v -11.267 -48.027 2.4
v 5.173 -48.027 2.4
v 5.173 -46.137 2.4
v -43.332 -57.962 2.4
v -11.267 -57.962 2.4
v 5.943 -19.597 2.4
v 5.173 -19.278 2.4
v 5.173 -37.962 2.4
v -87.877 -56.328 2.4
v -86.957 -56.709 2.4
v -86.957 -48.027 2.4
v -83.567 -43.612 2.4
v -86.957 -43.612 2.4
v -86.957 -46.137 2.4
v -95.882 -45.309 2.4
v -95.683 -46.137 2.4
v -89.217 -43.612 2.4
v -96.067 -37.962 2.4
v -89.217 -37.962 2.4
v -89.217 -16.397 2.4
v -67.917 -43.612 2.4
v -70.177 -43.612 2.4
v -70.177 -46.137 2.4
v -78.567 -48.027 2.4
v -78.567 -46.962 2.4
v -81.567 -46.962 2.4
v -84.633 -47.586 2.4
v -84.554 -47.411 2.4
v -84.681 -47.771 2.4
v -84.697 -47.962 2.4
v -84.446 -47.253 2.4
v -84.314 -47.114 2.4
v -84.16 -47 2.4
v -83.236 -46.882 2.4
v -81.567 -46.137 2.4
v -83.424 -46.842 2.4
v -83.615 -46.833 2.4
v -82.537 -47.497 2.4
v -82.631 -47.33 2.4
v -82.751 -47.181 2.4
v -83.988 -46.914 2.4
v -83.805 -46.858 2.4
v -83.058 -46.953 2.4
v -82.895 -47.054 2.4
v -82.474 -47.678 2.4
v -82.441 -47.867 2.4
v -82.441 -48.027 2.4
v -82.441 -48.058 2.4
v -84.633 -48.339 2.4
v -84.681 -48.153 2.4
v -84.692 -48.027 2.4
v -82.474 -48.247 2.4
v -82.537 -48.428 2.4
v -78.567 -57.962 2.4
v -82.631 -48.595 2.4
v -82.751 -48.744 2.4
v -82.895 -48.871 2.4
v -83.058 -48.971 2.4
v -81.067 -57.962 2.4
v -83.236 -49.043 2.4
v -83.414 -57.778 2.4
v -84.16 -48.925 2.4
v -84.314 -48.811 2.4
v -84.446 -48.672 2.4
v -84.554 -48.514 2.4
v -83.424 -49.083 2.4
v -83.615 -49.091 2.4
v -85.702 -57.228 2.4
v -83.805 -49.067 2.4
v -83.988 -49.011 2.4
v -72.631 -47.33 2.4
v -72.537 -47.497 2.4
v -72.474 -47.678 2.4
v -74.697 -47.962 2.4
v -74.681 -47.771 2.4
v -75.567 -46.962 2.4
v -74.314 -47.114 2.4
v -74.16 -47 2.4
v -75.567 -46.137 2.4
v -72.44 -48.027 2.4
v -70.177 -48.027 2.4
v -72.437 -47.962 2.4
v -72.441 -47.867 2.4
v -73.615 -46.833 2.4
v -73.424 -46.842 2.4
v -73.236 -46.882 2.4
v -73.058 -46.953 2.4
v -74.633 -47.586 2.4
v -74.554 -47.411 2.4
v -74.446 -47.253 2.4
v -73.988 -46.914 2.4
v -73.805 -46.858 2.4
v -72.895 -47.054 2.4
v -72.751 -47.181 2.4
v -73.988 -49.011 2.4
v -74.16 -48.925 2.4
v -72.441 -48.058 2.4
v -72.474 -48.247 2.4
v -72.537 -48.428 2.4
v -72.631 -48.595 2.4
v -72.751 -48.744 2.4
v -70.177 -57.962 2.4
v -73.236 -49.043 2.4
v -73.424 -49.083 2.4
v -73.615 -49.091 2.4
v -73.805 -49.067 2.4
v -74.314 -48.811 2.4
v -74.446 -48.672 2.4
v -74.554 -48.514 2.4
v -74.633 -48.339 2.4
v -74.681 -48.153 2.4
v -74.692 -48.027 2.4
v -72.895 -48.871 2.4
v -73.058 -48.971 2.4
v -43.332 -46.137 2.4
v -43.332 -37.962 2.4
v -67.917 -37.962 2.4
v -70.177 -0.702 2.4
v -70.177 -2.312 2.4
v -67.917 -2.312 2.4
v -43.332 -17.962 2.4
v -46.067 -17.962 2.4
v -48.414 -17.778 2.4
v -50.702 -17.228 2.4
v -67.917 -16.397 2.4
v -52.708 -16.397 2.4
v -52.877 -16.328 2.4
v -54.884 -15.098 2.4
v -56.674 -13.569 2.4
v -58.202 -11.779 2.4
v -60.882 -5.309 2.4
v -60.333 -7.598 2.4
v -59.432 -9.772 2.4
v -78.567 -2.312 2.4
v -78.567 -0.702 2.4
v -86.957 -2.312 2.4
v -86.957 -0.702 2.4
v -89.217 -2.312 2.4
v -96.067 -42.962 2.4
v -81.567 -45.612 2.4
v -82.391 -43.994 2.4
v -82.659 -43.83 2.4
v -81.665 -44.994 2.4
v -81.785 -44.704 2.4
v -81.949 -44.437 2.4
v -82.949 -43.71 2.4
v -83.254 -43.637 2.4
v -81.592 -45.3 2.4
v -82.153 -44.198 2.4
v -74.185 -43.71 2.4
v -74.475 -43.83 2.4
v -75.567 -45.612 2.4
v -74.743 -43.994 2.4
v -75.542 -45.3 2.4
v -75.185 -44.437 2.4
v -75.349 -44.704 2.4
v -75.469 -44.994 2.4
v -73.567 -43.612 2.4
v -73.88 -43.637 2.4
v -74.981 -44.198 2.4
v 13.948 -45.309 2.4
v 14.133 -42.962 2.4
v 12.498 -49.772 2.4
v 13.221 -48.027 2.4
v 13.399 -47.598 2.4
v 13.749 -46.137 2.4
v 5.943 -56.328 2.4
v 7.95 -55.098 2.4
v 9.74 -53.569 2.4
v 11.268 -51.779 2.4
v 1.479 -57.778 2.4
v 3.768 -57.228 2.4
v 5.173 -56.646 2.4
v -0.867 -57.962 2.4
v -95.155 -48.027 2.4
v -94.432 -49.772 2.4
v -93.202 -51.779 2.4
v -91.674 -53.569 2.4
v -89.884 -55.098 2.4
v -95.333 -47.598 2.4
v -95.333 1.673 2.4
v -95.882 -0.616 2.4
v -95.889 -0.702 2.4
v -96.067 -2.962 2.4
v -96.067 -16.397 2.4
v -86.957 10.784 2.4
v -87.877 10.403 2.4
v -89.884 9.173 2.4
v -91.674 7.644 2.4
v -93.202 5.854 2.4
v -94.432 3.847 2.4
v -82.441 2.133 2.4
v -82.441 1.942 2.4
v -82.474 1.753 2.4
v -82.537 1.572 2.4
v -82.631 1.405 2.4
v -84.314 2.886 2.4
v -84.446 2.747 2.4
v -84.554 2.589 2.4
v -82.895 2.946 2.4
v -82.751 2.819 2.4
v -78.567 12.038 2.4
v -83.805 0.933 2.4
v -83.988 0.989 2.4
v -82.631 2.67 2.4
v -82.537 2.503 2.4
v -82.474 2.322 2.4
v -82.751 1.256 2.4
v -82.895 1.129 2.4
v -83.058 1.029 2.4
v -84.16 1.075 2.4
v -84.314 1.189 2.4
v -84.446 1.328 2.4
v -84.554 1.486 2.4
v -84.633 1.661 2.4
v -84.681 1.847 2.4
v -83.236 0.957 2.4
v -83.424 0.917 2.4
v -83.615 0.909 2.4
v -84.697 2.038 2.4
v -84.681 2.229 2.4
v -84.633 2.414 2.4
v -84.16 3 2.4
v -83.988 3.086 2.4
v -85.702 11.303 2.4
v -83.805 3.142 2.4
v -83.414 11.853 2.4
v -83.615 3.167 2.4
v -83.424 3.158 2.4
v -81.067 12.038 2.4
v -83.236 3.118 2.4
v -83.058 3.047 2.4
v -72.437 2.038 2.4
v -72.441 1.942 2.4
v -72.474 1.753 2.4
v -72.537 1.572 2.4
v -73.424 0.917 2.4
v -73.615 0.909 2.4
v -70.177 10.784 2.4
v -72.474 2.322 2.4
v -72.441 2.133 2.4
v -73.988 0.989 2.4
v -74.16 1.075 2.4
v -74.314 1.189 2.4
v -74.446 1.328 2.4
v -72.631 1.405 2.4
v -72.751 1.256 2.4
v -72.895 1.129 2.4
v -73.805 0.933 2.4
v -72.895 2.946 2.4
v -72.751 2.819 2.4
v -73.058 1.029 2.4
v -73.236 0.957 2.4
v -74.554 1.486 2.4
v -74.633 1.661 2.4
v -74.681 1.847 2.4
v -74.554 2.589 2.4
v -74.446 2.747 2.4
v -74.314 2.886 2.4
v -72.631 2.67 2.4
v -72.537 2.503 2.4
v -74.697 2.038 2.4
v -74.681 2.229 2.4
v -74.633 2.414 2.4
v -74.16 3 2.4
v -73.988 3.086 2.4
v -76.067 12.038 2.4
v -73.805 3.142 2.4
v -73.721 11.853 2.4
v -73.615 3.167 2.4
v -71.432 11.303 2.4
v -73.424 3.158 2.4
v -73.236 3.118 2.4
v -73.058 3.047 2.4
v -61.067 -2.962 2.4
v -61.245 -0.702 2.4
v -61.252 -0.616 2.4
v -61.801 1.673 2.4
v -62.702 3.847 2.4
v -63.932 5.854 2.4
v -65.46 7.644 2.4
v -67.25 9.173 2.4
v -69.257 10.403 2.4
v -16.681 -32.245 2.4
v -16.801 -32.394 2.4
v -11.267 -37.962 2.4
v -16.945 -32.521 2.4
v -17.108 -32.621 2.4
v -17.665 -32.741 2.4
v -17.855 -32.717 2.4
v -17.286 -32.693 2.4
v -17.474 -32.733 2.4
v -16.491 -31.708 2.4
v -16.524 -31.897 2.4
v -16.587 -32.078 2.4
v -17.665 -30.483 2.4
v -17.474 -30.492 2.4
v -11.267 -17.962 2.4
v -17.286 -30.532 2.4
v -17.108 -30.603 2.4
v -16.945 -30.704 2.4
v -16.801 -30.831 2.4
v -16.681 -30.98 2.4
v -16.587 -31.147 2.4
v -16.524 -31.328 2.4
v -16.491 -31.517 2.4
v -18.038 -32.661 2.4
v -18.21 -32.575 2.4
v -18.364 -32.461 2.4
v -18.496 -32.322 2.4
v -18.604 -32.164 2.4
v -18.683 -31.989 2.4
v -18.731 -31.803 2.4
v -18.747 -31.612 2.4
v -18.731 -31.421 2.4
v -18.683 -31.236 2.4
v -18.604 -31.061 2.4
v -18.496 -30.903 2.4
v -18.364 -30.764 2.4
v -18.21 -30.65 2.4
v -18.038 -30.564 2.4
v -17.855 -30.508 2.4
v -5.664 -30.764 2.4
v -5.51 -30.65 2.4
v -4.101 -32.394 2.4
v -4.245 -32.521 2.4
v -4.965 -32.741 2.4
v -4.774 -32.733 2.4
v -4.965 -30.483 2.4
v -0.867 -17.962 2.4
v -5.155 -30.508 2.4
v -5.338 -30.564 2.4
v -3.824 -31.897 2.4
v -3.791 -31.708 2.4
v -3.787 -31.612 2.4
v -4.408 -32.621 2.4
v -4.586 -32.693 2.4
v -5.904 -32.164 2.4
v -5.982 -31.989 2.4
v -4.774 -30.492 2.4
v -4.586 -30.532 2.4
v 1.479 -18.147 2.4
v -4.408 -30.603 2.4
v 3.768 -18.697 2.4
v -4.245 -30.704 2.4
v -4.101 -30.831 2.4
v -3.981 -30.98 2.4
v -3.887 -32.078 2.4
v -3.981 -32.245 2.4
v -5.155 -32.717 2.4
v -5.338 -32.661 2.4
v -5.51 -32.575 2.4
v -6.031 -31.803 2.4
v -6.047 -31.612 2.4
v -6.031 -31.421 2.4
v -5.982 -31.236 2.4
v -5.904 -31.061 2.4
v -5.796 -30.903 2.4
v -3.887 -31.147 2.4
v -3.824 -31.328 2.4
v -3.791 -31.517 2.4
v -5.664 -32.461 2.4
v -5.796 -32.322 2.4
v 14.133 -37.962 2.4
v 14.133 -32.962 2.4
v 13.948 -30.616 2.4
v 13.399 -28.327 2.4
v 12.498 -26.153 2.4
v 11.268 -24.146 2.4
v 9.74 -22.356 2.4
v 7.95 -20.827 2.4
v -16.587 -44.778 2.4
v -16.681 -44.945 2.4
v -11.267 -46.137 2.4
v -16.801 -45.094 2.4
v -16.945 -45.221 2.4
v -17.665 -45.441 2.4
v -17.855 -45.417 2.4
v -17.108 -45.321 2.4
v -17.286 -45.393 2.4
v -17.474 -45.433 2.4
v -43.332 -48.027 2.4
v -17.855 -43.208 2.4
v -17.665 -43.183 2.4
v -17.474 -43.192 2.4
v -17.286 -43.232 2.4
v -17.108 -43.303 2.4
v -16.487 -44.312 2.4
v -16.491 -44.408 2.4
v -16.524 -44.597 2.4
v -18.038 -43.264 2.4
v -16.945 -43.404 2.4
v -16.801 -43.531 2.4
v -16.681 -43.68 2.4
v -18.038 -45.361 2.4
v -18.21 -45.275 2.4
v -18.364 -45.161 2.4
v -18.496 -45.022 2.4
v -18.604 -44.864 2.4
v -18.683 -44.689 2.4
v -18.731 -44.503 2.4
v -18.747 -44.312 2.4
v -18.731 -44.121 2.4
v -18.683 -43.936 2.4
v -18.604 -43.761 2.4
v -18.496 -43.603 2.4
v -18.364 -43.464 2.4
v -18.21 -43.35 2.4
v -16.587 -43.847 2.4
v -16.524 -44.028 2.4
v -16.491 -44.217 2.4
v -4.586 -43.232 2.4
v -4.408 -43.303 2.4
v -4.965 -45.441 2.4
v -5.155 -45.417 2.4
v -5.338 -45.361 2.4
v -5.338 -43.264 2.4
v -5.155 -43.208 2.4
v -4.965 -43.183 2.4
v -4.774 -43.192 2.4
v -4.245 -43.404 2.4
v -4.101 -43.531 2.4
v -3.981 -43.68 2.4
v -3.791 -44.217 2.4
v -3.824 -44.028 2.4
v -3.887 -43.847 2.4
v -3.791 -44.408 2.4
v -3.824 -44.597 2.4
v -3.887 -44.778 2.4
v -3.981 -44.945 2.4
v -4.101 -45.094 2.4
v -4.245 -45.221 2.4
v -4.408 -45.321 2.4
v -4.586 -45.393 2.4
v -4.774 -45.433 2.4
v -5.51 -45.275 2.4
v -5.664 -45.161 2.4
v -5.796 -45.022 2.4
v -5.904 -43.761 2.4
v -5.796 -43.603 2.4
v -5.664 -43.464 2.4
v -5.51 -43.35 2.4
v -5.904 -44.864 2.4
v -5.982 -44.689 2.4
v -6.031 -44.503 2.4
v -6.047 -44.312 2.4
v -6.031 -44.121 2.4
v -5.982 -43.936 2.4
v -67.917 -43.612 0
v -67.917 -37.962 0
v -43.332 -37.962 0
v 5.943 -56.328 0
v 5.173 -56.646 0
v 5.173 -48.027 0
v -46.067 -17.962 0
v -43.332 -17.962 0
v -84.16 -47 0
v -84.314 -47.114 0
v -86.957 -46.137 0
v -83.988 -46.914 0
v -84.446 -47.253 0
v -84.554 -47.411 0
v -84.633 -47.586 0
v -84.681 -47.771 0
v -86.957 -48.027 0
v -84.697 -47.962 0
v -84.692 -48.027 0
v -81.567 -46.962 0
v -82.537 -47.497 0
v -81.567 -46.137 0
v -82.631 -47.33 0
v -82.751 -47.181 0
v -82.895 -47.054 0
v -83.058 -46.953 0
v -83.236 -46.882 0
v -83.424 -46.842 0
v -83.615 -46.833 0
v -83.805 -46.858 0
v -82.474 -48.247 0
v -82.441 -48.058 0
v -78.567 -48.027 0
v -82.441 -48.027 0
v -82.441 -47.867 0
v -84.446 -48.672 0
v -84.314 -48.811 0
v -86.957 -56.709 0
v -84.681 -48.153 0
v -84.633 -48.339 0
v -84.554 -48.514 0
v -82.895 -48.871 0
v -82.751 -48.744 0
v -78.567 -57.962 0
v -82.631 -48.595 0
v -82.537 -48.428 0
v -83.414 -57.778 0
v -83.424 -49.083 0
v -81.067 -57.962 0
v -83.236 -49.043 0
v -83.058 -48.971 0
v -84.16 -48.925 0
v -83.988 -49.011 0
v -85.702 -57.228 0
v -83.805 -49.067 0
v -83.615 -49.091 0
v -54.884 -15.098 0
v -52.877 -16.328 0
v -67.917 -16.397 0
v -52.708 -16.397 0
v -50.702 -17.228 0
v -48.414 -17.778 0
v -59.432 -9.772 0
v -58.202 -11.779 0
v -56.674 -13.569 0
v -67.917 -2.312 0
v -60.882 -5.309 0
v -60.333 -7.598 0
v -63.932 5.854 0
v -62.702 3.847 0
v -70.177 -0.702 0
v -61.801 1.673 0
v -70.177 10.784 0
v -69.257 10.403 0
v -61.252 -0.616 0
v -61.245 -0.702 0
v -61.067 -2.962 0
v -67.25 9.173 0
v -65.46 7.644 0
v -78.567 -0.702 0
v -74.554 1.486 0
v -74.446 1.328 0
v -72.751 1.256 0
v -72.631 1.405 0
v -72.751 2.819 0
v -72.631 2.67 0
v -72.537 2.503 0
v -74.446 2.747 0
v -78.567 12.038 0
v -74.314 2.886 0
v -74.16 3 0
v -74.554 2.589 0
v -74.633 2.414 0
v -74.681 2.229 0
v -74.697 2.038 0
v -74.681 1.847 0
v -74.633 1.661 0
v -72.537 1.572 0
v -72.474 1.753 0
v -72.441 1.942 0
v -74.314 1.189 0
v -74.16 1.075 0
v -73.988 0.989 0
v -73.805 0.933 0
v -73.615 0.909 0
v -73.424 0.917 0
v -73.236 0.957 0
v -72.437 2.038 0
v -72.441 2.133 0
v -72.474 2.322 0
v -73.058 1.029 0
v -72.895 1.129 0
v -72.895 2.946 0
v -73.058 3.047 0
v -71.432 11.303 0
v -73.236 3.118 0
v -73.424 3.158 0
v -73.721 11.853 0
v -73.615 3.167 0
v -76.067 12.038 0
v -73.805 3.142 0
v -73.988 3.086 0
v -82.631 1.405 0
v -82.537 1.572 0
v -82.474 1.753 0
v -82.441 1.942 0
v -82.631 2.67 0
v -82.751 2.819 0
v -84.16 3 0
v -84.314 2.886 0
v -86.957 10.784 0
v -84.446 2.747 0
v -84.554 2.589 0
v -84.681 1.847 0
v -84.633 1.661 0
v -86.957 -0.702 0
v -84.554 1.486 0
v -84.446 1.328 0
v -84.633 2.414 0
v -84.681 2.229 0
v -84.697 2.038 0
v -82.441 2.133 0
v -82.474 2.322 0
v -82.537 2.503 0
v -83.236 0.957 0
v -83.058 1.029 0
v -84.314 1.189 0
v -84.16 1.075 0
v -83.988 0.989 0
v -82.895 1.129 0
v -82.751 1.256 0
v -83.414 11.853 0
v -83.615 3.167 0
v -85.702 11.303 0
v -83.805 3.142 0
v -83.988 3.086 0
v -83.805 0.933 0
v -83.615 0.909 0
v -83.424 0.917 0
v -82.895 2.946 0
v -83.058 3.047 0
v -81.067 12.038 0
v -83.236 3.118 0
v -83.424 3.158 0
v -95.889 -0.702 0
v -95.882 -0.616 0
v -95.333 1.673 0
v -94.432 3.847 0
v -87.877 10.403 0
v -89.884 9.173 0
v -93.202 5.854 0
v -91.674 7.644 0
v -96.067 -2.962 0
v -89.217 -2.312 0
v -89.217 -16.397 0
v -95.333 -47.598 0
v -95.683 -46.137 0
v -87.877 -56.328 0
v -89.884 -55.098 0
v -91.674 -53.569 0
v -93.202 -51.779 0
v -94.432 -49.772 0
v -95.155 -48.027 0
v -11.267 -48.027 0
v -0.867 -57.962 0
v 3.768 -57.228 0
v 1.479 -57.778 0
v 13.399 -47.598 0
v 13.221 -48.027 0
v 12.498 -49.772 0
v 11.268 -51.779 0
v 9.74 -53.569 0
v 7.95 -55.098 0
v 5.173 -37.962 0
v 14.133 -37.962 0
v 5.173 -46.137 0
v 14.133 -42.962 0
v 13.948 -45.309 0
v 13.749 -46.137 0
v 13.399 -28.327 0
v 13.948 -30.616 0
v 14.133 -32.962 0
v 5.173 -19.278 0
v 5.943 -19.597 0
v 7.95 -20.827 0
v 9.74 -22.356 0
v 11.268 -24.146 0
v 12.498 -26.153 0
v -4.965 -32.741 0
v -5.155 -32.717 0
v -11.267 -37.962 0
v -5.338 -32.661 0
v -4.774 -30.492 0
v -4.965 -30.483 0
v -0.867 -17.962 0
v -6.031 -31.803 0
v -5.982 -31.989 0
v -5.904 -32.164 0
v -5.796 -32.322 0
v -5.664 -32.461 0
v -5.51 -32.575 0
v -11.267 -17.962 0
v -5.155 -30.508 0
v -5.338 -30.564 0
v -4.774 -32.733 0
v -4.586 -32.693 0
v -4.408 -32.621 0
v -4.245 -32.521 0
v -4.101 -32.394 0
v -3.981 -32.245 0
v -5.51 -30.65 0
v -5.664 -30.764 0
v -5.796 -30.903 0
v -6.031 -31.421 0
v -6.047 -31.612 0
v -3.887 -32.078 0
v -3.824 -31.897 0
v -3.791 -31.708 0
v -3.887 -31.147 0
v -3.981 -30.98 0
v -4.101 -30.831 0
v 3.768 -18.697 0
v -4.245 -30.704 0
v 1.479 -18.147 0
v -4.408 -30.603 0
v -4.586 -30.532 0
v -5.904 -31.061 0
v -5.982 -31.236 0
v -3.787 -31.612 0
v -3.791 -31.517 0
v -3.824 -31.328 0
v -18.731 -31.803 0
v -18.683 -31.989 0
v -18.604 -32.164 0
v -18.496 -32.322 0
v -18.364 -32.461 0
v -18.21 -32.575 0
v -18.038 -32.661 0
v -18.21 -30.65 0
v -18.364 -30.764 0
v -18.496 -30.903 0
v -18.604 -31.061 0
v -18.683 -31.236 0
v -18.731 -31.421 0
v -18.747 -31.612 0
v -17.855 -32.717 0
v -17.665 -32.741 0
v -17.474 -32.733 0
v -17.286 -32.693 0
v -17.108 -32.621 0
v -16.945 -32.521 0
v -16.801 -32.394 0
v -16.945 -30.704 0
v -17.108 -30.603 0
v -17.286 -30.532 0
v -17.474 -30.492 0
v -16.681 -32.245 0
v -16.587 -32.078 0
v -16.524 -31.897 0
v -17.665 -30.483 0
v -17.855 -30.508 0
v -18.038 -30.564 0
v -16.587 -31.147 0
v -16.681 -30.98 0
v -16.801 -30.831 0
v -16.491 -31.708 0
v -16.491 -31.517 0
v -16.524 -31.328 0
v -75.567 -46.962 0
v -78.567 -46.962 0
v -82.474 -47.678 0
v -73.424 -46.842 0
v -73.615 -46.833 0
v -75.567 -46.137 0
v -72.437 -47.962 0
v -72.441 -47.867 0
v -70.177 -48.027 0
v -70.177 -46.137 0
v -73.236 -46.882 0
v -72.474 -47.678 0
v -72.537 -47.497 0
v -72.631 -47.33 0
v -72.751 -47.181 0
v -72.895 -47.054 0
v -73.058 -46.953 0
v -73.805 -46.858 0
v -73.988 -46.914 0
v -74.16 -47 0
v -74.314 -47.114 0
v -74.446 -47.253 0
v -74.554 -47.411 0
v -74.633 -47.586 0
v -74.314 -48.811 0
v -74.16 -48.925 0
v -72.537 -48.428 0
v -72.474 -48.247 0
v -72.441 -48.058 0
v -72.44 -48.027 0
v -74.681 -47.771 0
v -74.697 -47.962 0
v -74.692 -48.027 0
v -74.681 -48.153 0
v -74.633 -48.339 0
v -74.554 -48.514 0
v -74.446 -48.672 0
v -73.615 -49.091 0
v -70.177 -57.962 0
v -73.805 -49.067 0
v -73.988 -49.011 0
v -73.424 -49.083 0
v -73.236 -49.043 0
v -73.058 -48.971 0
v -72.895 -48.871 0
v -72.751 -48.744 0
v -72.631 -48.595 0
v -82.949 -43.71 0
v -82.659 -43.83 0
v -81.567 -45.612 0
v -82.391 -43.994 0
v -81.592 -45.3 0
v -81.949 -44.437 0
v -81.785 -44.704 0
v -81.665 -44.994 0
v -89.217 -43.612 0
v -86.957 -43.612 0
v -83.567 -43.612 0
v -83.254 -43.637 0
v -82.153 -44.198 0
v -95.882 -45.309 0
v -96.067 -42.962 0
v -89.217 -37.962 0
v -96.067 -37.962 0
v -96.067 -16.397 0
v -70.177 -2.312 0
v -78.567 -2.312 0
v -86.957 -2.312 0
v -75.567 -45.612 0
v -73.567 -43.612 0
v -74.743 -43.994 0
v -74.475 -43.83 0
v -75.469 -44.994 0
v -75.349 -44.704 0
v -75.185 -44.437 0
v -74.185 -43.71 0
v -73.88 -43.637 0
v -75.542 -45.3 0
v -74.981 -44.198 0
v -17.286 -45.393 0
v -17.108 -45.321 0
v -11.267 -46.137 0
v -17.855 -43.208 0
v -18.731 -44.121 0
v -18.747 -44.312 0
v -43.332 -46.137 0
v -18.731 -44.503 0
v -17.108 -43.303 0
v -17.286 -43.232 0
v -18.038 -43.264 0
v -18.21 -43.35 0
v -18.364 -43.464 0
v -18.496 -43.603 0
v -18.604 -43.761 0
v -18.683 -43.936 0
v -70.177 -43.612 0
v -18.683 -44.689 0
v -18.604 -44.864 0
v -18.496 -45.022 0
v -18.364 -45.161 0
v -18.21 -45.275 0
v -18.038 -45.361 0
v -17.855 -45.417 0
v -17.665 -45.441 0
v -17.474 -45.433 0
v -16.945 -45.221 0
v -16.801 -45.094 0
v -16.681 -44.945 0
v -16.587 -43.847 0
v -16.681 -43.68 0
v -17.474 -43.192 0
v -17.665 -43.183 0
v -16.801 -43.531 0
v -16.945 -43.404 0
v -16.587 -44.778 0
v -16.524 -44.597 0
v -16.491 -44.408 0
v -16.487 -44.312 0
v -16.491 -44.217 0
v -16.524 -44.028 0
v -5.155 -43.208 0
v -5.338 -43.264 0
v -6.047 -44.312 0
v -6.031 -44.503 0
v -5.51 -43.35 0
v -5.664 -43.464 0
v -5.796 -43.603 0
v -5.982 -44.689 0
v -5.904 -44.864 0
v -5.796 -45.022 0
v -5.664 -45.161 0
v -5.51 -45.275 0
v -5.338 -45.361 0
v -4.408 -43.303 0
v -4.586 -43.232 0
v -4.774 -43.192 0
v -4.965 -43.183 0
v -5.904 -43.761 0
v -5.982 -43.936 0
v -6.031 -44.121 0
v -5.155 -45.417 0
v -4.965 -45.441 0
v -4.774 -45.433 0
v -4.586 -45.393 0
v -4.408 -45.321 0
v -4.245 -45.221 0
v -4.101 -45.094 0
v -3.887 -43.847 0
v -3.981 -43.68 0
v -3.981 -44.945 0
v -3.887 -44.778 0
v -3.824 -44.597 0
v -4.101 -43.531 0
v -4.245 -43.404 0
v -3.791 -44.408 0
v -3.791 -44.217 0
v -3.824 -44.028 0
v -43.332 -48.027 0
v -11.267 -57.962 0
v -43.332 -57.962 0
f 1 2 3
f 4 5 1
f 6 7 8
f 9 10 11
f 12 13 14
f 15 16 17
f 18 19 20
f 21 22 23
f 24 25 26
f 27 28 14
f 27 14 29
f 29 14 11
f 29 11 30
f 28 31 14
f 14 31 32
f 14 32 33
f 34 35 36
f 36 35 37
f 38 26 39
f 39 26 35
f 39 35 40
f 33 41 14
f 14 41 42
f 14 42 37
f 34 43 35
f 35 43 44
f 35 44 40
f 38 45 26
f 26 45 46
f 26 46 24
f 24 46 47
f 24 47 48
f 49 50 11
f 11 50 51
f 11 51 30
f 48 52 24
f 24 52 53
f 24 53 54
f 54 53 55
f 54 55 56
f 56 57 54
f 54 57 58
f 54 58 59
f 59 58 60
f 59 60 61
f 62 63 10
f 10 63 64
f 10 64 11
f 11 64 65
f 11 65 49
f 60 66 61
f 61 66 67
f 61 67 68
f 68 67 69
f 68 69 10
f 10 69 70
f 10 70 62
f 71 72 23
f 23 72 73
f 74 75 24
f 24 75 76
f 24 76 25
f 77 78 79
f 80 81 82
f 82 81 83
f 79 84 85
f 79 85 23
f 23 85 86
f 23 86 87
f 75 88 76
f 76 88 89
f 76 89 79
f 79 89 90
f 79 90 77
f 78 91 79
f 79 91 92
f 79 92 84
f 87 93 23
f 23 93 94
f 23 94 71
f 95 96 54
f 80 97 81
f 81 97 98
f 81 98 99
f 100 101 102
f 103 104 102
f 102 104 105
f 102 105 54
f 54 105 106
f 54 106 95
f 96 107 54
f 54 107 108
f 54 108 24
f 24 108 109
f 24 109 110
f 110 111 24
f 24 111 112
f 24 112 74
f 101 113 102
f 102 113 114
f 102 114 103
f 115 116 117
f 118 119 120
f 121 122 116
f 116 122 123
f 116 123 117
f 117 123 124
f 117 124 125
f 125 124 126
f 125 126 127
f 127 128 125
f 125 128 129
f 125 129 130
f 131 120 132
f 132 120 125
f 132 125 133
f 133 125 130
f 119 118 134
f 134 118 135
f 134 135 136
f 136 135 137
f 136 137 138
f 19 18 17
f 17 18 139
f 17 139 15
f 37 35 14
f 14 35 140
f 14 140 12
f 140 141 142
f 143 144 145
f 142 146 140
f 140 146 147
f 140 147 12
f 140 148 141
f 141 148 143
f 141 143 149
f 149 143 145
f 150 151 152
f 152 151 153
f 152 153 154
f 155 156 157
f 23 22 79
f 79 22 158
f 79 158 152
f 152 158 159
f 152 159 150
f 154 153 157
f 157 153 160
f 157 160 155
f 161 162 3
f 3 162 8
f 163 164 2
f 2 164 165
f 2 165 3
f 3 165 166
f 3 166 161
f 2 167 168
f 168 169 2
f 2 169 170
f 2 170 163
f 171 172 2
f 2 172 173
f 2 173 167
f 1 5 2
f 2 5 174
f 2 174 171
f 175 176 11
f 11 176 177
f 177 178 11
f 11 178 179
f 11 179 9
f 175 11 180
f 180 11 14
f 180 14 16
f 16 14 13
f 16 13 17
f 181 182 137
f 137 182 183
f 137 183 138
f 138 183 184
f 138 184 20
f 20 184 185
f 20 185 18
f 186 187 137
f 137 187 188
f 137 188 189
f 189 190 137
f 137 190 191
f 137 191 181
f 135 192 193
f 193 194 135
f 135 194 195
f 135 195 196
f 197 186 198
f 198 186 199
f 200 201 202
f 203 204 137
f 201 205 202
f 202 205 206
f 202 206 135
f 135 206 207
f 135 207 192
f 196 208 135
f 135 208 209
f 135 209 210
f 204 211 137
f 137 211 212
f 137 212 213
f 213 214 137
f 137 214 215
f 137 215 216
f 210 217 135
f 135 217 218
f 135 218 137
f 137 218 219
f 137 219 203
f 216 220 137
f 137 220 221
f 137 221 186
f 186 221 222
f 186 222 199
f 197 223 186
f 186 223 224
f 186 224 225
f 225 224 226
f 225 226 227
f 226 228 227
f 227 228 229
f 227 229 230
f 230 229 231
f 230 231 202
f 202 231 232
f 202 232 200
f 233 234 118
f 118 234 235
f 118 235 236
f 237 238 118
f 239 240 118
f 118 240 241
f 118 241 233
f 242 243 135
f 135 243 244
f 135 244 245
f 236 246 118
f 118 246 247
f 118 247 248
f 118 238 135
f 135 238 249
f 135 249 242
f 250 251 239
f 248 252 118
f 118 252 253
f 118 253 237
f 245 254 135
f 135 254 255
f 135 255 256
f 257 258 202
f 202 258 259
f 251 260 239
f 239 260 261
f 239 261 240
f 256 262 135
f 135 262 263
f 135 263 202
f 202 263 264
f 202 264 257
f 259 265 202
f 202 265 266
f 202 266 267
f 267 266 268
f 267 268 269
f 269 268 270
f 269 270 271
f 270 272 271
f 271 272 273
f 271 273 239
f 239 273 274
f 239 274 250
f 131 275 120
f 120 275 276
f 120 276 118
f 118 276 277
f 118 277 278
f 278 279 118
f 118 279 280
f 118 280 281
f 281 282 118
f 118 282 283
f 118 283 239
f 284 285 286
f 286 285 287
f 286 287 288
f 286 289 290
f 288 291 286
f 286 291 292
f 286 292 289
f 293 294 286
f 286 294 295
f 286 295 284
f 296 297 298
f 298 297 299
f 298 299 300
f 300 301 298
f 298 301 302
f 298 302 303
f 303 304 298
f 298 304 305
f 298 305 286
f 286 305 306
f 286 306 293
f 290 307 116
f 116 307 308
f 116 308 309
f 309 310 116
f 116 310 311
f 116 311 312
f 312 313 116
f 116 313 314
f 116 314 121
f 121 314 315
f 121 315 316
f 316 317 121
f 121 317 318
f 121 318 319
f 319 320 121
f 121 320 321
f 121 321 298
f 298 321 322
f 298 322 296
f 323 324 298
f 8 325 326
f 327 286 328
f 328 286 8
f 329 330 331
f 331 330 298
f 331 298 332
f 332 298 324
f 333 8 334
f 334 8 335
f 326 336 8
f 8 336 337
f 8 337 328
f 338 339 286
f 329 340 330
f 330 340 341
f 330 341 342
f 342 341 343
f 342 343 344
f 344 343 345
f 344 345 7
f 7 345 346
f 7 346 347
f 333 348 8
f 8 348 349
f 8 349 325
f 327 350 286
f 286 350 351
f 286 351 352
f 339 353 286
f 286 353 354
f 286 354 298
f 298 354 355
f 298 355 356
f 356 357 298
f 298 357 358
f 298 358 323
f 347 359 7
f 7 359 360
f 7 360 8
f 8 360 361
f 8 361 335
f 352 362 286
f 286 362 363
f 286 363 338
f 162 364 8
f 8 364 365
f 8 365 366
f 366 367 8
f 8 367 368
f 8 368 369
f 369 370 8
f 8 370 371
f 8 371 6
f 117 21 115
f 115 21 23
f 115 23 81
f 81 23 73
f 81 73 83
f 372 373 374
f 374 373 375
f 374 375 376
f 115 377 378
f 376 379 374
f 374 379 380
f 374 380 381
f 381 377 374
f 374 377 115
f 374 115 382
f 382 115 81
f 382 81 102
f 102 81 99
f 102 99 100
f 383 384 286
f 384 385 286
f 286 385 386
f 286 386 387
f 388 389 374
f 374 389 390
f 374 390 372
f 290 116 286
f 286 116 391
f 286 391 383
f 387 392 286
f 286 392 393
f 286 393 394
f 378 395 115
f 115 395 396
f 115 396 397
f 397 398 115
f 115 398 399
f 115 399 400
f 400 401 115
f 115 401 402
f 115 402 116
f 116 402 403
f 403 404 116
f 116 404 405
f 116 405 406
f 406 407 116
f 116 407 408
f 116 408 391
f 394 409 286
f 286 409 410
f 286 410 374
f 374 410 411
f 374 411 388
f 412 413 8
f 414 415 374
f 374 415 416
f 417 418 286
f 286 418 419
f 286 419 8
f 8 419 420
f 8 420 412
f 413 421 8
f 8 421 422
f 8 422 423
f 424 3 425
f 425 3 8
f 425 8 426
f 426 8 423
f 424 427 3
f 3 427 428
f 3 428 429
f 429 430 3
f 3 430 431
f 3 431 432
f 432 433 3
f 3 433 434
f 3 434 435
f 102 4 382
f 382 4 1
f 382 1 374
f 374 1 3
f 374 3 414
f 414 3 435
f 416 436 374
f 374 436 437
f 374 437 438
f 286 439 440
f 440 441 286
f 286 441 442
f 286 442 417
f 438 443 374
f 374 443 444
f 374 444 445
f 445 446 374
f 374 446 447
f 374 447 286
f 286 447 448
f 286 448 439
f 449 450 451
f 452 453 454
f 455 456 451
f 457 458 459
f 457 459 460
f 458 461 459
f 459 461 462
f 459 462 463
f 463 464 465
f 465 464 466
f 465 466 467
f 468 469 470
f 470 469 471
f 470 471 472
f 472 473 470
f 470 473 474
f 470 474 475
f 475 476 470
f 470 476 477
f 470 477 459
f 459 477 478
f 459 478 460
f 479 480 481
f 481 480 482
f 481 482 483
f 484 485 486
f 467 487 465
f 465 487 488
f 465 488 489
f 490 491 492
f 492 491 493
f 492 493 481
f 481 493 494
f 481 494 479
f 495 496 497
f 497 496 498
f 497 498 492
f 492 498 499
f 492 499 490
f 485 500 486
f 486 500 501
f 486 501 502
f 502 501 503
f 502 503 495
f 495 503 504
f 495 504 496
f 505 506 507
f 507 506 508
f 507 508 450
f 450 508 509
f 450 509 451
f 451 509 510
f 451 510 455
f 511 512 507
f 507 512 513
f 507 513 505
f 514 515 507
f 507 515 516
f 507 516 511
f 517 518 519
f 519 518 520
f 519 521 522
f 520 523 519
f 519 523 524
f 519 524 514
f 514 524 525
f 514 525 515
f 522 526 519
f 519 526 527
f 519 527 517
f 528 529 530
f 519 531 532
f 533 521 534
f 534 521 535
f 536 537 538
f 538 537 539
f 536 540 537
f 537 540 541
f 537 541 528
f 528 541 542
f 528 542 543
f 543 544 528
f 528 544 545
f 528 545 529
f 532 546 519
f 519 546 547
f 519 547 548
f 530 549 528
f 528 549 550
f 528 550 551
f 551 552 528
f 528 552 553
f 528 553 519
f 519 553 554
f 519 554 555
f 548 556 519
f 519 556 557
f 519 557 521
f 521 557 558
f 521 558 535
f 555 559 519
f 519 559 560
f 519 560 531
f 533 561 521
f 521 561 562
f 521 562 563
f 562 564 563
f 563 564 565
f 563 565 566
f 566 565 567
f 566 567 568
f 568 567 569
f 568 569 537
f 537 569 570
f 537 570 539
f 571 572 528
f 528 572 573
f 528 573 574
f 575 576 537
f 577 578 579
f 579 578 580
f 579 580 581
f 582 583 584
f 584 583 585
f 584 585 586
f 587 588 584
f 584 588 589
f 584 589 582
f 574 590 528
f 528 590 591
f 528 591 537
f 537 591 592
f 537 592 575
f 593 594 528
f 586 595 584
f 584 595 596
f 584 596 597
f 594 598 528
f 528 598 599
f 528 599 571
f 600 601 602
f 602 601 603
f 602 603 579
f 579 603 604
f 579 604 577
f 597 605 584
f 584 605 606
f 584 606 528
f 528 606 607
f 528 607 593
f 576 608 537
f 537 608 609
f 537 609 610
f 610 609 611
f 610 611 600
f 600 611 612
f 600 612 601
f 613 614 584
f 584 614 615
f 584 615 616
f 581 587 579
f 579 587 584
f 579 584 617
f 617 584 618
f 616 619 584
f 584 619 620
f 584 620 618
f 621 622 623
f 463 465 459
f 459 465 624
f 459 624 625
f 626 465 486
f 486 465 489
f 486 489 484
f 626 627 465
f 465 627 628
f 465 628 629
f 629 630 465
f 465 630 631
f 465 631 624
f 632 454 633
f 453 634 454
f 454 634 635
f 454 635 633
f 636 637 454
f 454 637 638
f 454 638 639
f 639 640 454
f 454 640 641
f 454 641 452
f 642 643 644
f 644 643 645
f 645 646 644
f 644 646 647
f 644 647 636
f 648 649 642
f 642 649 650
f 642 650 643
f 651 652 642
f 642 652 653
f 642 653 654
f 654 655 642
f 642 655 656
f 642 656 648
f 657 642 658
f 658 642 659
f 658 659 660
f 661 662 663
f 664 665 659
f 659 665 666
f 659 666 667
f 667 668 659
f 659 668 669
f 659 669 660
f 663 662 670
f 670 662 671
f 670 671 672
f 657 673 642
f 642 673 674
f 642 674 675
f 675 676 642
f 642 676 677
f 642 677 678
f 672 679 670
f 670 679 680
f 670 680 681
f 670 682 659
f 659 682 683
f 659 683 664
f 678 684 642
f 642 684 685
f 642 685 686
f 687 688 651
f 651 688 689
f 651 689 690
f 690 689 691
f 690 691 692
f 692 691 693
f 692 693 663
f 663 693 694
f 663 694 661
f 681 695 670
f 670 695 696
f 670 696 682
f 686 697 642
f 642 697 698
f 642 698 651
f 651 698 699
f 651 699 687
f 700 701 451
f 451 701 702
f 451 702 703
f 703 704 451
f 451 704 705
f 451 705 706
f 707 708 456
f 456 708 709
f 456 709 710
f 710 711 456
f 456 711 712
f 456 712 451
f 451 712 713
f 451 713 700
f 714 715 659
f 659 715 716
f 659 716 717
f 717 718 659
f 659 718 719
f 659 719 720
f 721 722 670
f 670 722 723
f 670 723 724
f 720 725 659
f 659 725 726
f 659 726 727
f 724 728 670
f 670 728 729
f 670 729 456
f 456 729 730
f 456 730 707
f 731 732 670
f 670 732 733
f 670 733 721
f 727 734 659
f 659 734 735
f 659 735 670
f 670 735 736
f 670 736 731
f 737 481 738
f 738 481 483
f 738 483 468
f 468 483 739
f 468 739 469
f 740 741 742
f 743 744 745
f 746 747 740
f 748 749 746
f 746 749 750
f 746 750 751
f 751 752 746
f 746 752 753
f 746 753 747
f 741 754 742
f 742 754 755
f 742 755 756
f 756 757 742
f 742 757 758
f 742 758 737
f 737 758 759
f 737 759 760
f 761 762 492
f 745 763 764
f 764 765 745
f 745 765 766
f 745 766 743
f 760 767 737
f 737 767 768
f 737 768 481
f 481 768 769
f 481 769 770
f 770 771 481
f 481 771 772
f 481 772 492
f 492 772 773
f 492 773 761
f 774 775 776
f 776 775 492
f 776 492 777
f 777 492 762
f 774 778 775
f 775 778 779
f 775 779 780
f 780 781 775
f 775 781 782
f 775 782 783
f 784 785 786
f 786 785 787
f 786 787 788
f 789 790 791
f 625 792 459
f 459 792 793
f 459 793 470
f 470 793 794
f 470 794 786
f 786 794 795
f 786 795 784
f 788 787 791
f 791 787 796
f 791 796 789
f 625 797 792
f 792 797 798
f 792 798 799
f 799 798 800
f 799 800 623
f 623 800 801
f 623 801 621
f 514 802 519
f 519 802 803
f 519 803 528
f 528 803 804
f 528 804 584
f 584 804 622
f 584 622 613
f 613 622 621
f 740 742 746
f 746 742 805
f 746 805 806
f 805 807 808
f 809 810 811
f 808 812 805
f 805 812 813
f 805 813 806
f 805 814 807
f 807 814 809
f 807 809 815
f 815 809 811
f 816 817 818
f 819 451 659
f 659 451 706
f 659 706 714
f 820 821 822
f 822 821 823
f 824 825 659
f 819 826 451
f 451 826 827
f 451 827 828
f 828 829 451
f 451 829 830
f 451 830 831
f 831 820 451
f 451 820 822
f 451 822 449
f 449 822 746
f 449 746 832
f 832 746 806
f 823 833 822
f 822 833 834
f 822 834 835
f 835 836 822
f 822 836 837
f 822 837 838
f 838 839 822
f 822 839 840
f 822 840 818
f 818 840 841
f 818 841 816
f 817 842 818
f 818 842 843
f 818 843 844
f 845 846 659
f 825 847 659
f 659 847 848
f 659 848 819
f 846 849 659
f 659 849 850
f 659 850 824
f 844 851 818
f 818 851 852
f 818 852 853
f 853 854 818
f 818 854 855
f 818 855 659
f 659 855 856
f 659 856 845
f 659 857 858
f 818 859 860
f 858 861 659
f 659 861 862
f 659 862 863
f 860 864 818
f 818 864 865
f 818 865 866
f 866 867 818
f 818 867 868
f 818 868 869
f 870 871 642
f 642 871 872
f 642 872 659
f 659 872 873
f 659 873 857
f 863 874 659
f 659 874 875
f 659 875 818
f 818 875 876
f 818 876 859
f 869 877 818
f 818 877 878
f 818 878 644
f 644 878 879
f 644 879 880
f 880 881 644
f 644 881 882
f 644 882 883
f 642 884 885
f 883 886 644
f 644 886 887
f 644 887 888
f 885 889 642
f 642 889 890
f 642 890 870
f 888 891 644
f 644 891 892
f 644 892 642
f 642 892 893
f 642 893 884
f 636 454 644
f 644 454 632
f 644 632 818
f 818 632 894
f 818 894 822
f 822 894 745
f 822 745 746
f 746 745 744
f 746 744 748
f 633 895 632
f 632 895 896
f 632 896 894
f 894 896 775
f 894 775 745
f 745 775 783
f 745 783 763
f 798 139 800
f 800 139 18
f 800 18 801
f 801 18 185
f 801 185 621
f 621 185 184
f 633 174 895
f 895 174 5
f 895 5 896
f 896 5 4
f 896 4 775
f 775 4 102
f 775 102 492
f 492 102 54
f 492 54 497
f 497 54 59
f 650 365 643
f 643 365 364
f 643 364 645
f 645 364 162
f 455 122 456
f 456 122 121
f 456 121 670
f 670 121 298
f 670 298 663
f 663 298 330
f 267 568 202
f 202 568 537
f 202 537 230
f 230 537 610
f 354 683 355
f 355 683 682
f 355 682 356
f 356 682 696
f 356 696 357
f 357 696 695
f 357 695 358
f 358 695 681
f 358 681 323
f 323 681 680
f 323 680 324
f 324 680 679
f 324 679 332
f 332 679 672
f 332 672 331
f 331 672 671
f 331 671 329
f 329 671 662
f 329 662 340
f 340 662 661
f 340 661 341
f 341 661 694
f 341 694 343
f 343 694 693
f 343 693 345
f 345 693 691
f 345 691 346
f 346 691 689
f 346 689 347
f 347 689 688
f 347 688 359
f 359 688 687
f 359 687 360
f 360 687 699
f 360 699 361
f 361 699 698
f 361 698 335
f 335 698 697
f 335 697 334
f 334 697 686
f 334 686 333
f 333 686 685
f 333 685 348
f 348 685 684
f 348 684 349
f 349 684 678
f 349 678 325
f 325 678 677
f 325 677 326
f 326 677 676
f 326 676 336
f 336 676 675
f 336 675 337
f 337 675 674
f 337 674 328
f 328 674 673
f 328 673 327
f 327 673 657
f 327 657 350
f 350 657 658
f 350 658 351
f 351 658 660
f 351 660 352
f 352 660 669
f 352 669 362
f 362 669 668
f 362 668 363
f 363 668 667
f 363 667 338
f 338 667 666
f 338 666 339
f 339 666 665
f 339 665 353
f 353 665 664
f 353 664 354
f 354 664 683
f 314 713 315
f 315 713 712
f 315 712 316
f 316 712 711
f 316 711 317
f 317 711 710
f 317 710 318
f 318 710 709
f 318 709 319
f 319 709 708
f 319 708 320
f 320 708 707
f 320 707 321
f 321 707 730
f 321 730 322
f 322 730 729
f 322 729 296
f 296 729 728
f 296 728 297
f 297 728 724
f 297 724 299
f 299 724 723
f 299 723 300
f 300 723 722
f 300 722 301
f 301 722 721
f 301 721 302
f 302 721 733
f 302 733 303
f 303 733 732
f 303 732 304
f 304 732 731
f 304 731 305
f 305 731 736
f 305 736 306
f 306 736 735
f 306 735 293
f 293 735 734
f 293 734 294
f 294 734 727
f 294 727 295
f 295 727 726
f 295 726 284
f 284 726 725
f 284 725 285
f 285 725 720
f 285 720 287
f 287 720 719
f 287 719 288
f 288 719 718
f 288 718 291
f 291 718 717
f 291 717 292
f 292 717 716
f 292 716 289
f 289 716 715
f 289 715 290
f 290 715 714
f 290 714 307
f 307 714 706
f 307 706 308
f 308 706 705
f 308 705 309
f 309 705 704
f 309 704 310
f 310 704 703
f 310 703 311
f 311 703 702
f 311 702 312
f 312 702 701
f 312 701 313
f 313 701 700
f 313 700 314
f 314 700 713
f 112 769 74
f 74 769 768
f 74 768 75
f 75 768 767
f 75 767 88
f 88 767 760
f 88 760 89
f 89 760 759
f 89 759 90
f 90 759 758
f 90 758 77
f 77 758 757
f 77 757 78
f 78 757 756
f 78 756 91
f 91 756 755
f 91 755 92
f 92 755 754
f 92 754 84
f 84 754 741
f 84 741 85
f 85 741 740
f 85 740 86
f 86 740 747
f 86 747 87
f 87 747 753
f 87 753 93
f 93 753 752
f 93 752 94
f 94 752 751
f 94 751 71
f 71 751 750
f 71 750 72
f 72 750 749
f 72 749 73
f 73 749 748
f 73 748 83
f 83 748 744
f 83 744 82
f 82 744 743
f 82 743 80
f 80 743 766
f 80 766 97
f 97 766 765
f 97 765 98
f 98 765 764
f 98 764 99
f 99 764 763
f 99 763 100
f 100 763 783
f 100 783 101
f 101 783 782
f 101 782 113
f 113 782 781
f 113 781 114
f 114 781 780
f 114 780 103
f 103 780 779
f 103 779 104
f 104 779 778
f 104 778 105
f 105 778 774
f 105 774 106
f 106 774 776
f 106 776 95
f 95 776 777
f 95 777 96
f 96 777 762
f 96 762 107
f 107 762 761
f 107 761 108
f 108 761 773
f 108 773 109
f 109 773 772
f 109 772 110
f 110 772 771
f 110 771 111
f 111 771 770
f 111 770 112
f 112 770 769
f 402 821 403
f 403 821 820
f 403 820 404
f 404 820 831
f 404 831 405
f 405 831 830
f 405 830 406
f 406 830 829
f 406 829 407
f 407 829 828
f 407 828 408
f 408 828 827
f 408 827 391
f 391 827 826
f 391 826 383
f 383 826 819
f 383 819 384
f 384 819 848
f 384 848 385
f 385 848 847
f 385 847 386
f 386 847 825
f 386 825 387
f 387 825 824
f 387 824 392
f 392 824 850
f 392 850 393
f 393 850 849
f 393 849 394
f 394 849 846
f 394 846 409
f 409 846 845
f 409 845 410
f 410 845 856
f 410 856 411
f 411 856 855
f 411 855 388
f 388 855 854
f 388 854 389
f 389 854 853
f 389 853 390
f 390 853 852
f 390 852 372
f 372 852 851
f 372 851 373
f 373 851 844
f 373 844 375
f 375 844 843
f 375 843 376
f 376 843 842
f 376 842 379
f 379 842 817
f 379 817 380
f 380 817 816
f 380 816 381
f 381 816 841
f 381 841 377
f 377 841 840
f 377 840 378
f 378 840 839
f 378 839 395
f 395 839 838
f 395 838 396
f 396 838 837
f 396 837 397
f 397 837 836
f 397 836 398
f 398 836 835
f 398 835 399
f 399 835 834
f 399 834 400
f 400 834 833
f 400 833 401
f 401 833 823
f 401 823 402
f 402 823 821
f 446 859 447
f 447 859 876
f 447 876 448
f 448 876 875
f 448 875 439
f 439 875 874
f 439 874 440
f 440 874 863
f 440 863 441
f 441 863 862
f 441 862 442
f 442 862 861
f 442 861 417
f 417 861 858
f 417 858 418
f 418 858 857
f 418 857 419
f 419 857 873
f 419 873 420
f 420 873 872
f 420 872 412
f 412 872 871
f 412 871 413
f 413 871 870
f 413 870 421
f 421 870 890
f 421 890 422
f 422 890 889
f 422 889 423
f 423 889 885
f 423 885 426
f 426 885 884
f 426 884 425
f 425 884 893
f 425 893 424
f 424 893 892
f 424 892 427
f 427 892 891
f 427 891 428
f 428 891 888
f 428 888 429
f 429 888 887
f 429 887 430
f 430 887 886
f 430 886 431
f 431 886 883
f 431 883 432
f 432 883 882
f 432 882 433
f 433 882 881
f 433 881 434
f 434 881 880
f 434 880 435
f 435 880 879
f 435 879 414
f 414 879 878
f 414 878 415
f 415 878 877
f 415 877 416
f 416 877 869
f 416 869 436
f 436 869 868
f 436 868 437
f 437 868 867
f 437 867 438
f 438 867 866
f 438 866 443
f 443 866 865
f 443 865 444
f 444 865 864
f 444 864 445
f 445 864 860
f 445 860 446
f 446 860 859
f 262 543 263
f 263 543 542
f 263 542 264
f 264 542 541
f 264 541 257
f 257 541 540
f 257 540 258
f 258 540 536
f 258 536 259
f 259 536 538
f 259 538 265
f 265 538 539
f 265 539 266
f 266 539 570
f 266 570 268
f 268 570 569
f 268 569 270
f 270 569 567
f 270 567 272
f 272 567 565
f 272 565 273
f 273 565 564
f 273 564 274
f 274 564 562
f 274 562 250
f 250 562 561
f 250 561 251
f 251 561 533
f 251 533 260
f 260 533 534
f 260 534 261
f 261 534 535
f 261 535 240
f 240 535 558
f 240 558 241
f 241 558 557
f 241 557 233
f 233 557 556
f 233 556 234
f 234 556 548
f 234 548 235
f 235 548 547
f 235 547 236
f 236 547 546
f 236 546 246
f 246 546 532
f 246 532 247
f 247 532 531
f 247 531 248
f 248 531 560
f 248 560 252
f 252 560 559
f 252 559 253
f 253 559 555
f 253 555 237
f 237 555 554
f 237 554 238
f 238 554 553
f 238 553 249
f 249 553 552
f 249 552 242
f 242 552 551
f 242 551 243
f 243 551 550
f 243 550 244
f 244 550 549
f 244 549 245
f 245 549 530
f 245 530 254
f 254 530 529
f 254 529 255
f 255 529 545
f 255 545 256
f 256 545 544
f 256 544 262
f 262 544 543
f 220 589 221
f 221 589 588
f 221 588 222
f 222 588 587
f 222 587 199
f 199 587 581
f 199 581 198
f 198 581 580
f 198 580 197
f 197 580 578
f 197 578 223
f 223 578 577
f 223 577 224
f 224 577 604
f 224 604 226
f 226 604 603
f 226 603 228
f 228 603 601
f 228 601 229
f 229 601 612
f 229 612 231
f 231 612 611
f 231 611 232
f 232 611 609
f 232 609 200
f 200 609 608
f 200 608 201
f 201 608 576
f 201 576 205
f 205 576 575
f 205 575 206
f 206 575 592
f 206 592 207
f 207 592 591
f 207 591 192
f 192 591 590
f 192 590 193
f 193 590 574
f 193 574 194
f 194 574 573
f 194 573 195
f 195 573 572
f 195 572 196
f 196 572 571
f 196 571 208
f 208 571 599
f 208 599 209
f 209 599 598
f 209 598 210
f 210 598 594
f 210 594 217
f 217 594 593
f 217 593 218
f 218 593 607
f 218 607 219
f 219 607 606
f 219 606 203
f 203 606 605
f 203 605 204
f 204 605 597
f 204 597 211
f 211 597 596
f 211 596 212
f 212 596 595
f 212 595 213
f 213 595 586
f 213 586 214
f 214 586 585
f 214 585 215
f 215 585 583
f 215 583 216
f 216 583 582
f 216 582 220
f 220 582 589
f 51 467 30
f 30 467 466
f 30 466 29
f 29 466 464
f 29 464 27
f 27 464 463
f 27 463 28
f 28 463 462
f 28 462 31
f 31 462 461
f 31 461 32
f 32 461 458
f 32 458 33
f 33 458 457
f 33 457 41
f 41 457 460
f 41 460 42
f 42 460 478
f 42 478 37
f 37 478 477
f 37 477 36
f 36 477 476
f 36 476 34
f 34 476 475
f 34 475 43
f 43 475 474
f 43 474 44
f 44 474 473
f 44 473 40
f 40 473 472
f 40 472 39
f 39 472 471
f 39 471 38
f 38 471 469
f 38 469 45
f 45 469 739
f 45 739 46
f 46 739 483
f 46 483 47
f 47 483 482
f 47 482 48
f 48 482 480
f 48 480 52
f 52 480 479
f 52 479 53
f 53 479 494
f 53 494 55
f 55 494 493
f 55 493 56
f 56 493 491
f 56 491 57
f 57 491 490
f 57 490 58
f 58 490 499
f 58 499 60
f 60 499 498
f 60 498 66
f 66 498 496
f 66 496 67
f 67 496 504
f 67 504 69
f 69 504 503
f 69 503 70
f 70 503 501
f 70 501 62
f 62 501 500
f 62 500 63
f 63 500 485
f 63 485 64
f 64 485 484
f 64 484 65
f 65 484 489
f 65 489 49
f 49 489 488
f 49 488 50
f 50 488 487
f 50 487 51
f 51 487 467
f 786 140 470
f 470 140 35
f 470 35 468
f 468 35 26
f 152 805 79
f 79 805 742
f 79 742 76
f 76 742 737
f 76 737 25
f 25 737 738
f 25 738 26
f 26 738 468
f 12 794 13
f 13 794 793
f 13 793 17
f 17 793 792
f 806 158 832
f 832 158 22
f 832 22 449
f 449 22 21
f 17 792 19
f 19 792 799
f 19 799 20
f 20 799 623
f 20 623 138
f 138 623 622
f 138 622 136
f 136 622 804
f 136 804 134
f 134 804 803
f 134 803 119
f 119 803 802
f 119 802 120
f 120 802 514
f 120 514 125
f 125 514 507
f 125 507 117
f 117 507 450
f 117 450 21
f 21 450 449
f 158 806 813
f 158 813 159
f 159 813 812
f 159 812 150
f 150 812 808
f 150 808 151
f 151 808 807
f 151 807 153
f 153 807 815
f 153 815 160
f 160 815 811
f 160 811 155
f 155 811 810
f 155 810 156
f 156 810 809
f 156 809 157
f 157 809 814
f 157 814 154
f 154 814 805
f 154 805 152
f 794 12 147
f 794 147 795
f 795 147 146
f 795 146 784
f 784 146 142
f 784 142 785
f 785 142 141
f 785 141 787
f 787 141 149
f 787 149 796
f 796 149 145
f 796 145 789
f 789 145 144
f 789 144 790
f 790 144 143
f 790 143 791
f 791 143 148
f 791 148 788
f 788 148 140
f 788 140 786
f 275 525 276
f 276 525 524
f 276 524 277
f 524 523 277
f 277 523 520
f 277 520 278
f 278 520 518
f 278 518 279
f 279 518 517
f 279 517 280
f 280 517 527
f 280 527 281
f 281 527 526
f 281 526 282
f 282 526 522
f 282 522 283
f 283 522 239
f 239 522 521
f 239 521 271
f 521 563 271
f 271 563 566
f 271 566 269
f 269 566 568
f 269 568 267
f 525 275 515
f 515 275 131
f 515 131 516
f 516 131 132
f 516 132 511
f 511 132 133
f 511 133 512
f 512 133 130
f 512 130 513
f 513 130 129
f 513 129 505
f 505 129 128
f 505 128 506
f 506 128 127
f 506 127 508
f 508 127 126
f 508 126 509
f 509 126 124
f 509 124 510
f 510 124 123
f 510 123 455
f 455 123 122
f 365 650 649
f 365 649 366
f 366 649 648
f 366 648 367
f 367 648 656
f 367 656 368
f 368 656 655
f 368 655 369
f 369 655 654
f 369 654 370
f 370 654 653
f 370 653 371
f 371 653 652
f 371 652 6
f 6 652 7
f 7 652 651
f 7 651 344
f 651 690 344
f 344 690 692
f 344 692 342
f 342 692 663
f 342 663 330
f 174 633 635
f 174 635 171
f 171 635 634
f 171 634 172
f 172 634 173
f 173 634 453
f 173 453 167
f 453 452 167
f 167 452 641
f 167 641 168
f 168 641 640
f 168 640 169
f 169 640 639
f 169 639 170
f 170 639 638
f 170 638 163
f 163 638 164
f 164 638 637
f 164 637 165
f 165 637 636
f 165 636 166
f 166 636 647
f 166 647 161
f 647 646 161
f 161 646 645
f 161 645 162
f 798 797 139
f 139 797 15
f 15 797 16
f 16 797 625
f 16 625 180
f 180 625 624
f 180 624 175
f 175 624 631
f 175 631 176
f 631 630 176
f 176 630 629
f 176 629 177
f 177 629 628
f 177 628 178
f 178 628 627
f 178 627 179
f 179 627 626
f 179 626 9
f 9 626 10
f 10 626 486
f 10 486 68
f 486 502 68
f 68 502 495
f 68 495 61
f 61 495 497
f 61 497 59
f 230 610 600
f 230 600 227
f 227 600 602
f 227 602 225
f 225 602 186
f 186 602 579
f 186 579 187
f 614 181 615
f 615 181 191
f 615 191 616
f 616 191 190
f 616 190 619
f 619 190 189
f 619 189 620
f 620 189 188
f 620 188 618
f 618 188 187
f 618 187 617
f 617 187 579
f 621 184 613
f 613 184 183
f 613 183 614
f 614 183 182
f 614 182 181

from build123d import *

# Parameters (mm, degrees)
SKETCH1_R           = 1.13
SKETCH1_W           = 20
SKETCH1_H           = 40
BOSS_EXTRUDE1_DEPTH = 2.4
SKETCH2_W           = 6
SKETCH2_H           = 4
CUT_EXTRUDE1_DEPTH  = 2.4
SKETCH3_W           = 21.3
SKETCH3_H           = 41.3
SKETCH3_W_2         = 20
SKETCH3_H_2         = 40
CUT_EXTRUDE2_DEPTH  = 2.4
FILLET1_R           = 2
FILLET2_R           = 15


with BuildPart() as part:
    # Sketch1 → Boss-Extrude1 (new body)
    with BuildSketch(Plane.XY):
        Polygon((-96.067052023, 12.037572254), (-61.067052023, 12.037572254), (-61.067052023, -17.962427746), (14.132947977, -17.962427746), (14.132947977, -57.962427746), (-96.067052023, -57.962427746), align=None)
        with Locations((-4.917052023, -31.612427746)):
            Circle(SKETCH1_R, mode=Mode.SUBTRACT)
        with Locations(Location((-17.617052023, -31.612427746, 0), (0, 0, 180))):
            Circle(SKETCH1_R, mode=Mode.SUBTRACT)
        with Locations((-17.617052023, -44.312427746)):
            Circle(SKETCH1_R, mode=Mode.SUBTRACT)
        with Locations(Location((-4.917052023, -44.312427746, 0), (0, 0, 180))):
            Circle(SKETCH1_R, mode=Mode.SUBTRACT)
        with Locations((-73.567052023, 2.037572254)):
            Circle(SKETCH1_R, mode=Mode.SUBTRACT)
        with Locations((-73.567052023, -47.962427746)):
            Circle(SKETCH1_R, mode=Mode.SUBTRACT)
        with Locations(Location((-83.567052023, 2.037572254, 0), (0, 0, 180))):
            Circle(SKETCH1_R, mode=Mode.SUBTRACT)
        with Locations(Location((-83.567052023, -47.962427746, 0), (0, 0, 180))):
            Circle(SKETCH1_R, mode=Mode.SUBTRACT)
        with Locations((-78.567052023, -22.962427746)):
            Rectangle(SKETCH1_W, SKETCH1_H, mode=Mode.SUBTRACT)
    extrude(amount=BOSS_EXTRUDE1_DEPTH)

    # Sketch2 → Cut-Extrude1 (cut)
    with BuildSketch(Plane.XY.offset(2.4)):
        with Locations((-78.567052023, -44.962427746)):
            Rectangle(SKETCH2_W, SKETCH2_H)
    extrude(amount=-CUT_EXTRUDE1_DEPTH, mode=Mode.SUBTRACT)

    # Sketch3 → Cut-Extrude2 (cut)
    with BuildSketch(Plane.XY.offset(2.4)):
        with Locations((-78.567052023, -22.962427746)):
            Rectangle(SKETCH3_W, SKETCH3_H)
        with Locations((-78.567052023, -22.962427746)):
            Rectangle(SKETCH3_W_2, SKETCH3_H_2, mode=Mode.SUBTRACT)
    extrude(amount=-CUT_EXTRUDE2_DEPTH, mode=Mode.SUBTRACT)

    # Fillet1
    fillet1_edges = [part.edges().sort_by_distance(p)[0] for p in [
        (-75.567052023, -43.612427746, 1.2),
        (-81.567052023, -43.612427746, 1.2),
    ]]
    fillet(fillet1_edges, radius=FILLET1_R)

    # Fillet2
    fillet2_edges = [part.edges().sort_by_distance(p)[0] for p in [
        (-61.067052023, -17.962427746, 1.2),
        (14.132947977, -17.962427746, 1.2),
        (14.132947977, -57.962427746, 1.2),
        (-96.067052023, -57.962427746, 1.2),
        (-61.067052023, 12.037572254, 1.2),
        (-96.067052023, 12.037572254, 1.2),
    ]]
    fillet(fillet2_edges, radius=FILLET2_R - 0.0001)  # a hair under: the kernel refuses the full size


solid = part.part
